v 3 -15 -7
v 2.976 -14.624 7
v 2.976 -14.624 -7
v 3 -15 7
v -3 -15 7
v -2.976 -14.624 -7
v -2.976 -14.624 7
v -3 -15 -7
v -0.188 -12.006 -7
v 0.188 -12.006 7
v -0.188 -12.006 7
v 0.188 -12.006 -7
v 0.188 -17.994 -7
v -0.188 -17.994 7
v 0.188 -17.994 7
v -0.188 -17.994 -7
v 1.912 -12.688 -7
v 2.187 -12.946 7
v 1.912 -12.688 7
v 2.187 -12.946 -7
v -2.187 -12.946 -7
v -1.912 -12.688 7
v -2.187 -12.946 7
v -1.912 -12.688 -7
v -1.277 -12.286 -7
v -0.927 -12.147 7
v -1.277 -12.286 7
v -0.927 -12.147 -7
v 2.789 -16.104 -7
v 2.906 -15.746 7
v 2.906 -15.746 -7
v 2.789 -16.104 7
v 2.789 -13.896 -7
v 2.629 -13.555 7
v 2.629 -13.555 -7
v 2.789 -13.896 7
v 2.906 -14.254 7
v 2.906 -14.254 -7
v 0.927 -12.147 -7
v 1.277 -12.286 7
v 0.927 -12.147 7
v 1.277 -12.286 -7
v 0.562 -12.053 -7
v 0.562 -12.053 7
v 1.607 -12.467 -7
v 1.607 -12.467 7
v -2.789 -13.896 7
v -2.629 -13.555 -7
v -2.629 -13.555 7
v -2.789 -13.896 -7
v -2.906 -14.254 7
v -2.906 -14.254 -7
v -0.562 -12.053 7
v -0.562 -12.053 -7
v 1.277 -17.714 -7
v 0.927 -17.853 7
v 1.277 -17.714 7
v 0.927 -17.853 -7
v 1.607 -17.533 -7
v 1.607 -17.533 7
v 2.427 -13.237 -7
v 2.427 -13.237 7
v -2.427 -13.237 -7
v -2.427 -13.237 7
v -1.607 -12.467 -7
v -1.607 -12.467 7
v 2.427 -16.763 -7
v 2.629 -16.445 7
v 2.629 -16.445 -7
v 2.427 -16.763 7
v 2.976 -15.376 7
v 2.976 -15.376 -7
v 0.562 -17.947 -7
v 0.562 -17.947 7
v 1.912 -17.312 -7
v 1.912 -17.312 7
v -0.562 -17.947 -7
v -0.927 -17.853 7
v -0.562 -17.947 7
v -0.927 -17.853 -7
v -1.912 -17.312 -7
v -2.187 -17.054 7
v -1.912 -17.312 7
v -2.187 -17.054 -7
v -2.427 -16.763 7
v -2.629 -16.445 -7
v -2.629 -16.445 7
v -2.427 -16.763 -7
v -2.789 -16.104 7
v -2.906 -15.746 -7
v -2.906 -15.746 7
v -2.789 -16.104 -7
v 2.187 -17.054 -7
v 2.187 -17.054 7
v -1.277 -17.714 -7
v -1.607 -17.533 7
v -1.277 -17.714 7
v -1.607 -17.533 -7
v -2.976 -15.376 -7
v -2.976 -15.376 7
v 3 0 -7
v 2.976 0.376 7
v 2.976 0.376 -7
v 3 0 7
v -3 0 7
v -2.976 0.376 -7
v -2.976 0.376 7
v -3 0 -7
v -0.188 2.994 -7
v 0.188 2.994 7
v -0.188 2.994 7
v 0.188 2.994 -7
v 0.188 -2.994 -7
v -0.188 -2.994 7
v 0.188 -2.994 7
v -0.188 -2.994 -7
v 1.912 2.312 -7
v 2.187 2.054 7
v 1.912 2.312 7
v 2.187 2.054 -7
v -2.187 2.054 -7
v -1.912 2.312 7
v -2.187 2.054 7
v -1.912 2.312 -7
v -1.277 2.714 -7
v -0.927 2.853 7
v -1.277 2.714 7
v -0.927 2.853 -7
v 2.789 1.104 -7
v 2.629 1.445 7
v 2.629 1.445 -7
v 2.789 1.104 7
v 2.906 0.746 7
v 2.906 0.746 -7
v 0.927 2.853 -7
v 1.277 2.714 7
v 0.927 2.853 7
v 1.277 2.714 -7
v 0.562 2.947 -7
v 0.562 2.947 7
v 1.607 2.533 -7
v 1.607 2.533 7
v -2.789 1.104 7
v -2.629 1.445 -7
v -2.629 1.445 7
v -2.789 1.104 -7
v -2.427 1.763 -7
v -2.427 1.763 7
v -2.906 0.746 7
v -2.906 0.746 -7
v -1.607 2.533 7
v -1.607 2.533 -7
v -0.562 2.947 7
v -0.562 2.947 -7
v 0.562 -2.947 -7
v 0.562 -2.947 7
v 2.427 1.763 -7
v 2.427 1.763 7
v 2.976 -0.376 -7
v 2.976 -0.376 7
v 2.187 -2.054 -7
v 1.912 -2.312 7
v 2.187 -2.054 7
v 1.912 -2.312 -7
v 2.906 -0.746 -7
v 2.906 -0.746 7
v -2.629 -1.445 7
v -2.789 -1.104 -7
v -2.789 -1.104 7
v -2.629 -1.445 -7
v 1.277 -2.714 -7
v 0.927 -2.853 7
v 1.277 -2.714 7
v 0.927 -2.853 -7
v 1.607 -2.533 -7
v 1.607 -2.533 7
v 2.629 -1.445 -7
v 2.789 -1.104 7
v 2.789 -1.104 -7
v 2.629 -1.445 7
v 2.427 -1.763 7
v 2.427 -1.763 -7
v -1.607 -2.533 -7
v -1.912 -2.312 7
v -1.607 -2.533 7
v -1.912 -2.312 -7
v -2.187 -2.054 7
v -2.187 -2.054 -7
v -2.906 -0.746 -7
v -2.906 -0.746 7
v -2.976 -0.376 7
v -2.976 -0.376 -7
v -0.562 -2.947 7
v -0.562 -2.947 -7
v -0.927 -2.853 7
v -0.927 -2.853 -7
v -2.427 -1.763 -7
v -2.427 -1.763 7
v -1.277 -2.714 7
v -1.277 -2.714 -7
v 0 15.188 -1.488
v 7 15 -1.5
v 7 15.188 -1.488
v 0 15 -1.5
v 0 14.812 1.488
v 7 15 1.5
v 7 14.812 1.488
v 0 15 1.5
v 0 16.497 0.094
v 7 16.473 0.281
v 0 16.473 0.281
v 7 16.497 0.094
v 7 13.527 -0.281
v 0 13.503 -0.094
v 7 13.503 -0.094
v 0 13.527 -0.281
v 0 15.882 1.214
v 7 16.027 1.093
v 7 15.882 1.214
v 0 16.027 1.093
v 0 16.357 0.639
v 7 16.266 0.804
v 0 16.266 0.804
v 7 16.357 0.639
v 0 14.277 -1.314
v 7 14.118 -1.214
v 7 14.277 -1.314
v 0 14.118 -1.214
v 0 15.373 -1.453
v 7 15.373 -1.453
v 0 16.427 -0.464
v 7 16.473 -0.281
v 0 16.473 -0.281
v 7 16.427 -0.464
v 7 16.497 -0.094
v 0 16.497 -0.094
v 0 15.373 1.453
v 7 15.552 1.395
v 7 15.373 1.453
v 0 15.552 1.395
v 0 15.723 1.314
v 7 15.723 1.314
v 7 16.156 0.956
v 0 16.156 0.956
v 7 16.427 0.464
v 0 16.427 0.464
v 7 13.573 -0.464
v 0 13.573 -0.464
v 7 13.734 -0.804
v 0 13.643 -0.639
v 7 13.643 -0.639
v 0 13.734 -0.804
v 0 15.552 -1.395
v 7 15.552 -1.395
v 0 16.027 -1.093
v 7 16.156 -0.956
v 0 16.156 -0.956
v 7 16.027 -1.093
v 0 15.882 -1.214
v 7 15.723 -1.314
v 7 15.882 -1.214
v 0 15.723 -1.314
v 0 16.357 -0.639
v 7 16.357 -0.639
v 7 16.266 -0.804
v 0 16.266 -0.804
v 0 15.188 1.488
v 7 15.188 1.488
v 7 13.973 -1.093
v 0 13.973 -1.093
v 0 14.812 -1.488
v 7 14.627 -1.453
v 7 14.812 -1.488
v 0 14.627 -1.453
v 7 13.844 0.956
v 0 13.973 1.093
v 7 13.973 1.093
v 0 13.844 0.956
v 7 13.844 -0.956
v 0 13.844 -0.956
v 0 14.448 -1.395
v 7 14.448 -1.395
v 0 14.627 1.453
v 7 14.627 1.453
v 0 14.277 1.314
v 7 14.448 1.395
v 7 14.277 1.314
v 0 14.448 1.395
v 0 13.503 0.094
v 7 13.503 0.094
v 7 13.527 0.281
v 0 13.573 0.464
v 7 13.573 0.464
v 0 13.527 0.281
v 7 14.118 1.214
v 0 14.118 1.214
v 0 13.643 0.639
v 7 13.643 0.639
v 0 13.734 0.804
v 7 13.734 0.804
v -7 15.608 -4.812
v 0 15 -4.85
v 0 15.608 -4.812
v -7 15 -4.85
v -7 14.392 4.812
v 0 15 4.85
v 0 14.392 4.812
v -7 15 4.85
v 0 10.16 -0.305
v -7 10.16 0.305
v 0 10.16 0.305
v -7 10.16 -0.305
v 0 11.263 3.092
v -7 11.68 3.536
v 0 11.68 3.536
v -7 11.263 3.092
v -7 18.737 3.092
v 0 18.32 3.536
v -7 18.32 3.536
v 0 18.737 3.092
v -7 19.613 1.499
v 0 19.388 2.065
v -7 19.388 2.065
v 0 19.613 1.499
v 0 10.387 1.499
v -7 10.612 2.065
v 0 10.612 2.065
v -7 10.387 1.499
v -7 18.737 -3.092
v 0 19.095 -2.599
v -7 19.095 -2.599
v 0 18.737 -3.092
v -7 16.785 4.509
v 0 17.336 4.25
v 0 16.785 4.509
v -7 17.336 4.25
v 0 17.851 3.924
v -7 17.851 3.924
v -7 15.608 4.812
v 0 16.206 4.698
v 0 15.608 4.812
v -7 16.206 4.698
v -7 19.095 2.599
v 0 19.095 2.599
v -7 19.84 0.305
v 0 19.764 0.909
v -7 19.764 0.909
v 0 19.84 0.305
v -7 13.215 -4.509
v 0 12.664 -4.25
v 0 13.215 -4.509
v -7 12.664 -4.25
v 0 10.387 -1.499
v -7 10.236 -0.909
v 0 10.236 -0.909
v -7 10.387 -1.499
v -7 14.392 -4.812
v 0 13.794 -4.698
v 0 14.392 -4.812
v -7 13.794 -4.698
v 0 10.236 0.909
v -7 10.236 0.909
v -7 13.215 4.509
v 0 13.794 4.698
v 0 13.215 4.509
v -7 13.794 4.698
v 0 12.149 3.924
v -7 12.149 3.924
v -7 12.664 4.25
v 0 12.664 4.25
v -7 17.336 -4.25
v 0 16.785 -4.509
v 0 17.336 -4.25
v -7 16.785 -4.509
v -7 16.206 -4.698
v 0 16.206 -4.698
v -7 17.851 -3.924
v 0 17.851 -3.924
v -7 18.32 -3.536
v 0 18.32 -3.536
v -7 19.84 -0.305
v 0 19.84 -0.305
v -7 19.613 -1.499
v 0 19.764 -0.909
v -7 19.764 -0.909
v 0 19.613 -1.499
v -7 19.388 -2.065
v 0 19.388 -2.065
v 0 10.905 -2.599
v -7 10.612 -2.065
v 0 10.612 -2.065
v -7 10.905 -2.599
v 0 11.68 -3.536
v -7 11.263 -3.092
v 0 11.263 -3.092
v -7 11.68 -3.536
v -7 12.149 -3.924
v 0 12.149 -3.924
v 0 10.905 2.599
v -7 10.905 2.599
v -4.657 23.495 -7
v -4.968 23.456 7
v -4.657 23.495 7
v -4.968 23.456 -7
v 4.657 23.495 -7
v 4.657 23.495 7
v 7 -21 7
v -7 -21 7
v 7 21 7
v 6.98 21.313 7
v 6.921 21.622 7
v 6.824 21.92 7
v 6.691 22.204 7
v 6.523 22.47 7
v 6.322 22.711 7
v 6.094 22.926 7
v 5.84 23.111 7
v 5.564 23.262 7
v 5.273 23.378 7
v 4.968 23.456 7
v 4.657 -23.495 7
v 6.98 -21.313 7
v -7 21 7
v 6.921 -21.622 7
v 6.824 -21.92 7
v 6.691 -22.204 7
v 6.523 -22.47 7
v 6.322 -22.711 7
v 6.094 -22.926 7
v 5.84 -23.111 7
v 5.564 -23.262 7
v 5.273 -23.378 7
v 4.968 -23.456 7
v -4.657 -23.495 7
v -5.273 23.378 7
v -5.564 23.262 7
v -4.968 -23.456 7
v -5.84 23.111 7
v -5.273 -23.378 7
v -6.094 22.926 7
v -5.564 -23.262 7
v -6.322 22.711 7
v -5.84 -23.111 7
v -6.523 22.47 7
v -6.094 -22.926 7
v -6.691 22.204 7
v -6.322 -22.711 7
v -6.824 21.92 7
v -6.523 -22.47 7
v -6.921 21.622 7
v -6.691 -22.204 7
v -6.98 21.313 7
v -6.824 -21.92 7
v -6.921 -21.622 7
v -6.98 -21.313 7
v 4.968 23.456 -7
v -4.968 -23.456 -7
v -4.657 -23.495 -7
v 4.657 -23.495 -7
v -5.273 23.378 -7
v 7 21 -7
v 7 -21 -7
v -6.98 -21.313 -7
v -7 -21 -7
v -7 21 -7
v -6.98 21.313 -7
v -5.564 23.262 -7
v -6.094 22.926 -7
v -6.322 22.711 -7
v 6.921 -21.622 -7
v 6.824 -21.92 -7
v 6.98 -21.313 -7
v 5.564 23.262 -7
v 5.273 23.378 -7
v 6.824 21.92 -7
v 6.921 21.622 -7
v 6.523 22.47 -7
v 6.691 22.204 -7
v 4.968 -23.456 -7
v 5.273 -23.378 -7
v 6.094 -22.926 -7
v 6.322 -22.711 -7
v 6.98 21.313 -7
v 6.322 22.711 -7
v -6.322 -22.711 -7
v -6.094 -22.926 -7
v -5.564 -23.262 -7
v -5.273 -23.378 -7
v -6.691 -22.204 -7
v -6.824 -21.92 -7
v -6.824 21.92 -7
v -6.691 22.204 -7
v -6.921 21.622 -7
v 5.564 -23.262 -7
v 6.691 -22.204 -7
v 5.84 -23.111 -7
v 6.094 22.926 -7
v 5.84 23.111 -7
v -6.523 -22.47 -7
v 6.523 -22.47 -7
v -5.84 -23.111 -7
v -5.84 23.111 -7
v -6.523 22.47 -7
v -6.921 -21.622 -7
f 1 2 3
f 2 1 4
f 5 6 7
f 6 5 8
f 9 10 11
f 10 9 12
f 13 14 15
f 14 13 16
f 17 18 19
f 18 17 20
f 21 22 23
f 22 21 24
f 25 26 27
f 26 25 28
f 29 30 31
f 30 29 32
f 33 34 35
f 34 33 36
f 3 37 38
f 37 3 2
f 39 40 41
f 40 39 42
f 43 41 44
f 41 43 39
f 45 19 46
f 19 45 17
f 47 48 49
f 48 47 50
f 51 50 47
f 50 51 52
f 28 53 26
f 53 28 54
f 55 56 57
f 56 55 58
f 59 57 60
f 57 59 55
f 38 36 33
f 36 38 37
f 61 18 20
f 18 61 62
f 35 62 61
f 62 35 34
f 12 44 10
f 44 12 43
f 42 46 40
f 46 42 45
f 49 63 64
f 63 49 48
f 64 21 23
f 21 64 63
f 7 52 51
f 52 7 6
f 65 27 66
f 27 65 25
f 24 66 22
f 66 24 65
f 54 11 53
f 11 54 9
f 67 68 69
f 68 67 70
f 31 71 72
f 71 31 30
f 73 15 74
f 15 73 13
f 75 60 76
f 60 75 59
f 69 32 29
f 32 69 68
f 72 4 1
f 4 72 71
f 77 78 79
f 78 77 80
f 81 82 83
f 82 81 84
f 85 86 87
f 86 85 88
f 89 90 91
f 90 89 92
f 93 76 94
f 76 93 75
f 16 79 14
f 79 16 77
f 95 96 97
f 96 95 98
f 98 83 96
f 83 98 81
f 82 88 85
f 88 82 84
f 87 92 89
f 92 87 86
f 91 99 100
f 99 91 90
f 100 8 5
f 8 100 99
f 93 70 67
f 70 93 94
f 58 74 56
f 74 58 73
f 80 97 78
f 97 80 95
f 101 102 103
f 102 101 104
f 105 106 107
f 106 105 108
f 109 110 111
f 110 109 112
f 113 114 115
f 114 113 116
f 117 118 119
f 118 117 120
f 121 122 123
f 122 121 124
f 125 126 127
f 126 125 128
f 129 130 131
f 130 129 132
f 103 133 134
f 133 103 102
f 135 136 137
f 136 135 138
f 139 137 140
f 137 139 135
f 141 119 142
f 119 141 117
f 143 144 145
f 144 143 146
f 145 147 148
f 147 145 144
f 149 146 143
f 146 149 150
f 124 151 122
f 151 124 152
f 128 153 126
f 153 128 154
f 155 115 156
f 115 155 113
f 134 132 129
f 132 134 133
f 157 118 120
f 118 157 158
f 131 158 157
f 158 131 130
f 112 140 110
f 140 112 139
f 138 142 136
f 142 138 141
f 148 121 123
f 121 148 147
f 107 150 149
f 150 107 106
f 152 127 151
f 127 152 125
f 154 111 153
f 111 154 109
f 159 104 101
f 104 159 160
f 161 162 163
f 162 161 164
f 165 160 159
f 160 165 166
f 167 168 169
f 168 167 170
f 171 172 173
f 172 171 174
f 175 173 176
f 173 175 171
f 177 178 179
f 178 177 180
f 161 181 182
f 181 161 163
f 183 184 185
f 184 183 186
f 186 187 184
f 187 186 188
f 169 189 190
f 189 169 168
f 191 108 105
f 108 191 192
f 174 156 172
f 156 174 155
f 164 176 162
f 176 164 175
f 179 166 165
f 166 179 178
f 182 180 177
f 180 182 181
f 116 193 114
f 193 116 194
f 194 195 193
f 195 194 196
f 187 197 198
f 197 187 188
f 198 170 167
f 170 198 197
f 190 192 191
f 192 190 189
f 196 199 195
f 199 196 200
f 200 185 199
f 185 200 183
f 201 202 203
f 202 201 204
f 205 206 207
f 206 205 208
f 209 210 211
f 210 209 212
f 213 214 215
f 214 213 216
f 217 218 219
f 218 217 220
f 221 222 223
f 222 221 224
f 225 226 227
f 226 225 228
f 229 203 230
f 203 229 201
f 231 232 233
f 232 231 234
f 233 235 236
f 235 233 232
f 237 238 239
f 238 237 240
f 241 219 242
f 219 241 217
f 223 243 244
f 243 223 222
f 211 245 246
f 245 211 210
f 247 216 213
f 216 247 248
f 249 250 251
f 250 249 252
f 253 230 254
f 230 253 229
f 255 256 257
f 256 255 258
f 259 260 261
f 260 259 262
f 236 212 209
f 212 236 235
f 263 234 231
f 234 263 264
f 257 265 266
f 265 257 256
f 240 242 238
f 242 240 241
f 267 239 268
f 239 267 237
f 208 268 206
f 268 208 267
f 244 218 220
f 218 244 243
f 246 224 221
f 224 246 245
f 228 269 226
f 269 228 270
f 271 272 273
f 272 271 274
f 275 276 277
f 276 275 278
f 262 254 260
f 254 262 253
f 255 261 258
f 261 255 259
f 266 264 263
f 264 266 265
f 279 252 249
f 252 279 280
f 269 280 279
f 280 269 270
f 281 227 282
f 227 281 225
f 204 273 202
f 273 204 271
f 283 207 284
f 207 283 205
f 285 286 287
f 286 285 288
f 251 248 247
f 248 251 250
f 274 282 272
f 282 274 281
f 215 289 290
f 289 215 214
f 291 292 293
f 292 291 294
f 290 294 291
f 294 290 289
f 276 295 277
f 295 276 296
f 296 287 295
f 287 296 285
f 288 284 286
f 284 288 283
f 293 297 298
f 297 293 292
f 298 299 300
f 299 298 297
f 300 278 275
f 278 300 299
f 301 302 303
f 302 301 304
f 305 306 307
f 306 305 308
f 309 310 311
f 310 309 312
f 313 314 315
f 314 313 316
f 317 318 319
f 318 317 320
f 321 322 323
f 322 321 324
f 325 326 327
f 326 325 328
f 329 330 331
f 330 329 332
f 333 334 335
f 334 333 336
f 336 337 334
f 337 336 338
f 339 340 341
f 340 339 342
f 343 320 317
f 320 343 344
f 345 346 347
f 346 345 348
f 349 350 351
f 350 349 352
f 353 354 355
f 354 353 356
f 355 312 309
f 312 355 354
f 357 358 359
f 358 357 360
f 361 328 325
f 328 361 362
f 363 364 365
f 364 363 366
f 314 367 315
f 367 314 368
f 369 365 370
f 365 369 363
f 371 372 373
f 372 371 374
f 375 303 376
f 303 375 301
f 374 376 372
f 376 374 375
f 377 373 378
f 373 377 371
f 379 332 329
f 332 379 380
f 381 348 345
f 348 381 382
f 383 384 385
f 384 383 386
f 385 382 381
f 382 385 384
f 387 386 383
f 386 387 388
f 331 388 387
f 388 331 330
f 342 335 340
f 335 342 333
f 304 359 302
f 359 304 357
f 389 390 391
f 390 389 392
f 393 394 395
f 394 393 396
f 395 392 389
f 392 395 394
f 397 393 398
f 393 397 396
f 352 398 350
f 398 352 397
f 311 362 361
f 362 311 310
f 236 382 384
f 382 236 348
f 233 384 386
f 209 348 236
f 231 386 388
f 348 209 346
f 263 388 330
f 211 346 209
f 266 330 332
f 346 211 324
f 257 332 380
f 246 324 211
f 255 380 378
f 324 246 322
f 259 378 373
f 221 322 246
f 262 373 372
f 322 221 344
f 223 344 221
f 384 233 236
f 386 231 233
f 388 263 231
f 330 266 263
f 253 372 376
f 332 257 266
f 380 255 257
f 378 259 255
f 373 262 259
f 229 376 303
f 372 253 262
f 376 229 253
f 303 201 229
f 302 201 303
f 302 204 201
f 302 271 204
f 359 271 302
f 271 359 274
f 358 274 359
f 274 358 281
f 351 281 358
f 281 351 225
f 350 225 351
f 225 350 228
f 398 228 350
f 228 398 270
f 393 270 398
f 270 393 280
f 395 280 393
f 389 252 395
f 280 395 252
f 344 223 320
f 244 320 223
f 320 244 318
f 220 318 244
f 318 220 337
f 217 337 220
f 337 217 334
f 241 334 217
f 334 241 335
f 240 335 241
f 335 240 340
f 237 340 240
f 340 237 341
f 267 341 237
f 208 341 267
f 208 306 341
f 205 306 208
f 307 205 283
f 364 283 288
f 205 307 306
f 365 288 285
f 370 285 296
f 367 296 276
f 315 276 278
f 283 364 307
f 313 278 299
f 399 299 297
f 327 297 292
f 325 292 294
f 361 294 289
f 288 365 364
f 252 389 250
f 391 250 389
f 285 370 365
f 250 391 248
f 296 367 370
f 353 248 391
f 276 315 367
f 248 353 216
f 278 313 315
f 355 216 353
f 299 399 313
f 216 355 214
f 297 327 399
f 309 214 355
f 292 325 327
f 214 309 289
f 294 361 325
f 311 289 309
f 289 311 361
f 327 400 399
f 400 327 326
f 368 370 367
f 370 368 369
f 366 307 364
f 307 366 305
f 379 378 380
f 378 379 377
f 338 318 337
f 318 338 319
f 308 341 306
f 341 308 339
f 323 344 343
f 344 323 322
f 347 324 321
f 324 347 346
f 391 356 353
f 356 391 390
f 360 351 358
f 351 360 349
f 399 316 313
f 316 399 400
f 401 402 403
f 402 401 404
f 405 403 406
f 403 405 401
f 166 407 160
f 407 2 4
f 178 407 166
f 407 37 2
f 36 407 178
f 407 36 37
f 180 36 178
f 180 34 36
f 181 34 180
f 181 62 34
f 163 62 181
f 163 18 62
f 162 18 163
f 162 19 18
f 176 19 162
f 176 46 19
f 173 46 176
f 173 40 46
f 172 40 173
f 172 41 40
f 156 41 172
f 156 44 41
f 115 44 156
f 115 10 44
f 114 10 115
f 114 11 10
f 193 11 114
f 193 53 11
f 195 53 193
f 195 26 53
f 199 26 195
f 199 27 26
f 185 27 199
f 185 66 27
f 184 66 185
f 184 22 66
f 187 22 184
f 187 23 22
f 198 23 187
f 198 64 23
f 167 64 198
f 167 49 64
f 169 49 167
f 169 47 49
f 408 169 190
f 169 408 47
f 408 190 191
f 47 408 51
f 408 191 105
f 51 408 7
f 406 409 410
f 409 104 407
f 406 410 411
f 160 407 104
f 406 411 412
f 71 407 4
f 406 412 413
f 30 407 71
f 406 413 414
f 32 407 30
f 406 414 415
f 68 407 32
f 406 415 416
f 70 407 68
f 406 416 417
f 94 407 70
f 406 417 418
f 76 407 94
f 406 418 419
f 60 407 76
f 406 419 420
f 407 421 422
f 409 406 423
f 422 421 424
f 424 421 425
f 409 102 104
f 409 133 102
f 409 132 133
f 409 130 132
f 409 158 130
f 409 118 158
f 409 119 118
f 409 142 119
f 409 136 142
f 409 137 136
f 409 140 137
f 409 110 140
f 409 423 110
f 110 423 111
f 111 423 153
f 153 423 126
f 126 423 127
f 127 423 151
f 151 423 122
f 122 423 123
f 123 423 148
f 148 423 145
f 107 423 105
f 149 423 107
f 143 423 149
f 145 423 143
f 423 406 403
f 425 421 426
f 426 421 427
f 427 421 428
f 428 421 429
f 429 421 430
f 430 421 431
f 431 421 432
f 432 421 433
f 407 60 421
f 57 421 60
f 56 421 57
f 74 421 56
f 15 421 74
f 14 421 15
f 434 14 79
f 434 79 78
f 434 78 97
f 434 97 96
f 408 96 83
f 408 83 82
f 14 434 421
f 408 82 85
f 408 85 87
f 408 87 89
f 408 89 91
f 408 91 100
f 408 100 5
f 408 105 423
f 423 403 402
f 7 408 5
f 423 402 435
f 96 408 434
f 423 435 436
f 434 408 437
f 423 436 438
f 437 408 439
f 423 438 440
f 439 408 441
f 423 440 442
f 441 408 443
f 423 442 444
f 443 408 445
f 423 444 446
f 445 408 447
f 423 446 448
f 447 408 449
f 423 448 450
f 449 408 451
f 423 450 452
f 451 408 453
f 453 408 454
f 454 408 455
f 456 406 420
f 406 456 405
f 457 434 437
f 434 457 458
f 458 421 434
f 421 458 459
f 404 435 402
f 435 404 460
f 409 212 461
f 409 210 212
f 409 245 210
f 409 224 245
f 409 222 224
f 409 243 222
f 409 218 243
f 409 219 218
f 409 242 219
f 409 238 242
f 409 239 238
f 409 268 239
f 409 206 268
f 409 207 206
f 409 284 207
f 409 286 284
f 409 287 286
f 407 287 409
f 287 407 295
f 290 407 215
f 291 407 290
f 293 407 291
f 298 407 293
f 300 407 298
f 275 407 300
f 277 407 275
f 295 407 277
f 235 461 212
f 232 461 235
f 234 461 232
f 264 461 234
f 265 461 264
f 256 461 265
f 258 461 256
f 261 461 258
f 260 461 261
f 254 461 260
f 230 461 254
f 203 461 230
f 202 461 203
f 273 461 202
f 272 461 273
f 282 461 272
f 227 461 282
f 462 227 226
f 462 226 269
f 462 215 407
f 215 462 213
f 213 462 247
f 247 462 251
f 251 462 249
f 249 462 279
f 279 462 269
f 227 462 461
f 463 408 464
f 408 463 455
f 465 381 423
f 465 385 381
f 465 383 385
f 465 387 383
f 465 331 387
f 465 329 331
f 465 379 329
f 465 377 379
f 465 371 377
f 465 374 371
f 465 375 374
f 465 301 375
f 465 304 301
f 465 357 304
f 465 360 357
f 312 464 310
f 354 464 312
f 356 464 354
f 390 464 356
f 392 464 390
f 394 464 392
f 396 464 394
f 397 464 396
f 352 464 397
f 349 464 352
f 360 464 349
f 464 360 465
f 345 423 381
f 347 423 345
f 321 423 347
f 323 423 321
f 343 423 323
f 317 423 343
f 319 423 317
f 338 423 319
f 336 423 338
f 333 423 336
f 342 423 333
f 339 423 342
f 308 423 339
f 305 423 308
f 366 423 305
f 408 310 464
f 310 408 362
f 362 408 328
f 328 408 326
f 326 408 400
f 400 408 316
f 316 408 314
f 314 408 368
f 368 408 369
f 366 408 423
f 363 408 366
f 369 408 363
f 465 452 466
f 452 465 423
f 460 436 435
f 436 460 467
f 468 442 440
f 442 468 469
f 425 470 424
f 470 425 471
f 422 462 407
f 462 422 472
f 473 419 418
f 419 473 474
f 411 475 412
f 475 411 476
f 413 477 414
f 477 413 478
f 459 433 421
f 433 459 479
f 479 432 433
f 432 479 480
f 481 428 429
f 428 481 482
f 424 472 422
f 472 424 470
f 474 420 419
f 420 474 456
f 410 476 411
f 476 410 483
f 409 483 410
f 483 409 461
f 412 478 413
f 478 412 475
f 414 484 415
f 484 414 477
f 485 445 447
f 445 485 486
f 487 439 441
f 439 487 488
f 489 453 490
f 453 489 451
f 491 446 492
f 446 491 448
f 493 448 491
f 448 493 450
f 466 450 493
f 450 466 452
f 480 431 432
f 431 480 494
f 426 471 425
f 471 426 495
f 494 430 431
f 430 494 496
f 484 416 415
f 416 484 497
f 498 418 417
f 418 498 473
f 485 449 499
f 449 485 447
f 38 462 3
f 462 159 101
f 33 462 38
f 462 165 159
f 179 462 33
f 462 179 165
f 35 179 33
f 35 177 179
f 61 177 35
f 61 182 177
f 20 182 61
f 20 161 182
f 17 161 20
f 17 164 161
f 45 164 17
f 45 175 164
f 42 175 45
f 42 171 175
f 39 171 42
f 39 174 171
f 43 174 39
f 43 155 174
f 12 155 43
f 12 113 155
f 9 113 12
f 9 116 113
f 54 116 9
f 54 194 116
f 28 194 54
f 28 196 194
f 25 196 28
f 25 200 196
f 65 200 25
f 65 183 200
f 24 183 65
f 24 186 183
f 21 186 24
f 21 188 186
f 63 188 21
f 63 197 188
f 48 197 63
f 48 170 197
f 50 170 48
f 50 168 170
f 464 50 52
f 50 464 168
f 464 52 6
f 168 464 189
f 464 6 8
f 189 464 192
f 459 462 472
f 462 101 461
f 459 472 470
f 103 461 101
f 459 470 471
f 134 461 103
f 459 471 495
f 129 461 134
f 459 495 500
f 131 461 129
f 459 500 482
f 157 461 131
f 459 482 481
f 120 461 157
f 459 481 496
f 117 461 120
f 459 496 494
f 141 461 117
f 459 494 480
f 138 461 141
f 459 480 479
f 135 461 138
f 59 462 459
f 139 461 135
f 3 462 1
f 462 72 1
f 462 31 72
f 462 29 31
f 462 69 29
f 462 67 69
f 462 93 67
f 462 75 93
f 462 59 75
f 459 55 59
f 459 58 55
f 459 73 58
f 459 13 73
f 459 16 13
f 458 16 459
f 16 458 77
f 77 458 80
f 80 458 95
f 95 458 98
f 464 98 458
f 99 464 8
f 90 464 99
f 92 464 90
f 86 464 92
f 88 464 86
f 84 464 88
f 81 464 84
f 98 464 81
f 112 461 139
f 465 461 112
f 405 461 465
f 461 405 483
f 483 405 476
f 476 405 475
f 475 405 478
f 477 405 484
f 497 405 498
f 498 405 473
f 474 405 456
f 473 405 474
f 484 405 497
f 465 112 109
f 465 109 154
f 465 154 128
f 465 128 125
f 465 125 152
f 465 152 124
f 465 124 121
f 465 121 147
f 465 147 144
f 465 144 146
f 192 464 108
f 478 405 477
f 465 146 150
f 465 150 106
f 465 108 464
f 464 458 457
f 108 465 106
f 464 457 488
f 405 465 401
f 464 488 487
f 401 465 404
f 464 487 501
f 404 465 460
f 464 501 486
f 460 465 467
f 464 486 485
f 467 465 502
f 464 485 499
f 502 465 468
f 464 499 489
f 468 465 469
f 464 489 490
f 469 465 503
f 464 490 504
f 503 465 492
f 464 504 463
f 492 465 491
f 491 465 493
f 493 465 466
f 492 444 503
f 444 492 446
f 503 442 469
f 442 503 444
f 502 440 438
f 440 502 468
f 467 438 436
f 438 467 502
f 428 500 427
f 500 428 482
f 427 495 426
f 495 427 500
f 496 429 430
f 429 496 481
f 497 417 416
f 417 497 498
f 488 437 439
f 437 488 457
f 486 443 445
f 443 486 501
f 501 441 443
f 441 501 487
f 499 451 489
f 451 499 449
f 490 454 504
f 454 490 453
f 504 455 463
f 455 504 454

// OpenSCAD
$fn = 50;


difference() {
	union() {
		translate(v = [0, 0, -7.0000000000]) {
			hull() {
				translate(v = [-4.5000000000, 21.0000000000, 0]) {
					cylinder(h = 14, r = 2.5000000000);
				}
				translate(v = [4.5000000000, 21.0000000000, 0]) {
					cylinder(h = 14, r = 2.5000000000);
				}
				translate(v = [-4.5000000000, -21.0000000000, 0]) {
					cylinder(h = 14, r = 2.5000000000);
				}
				translate(v = [4.5000000000, -21.0000000000, 0]) {
					cylinder(h = 14, r = 2.5000000000);
				}
			}
		}
	}
	union() {
		translate(v = [0.0000000000, -15.0000000000, -100.0000000000]) {
			cylinder(h = 200, r = 3.0000000000);
		}
		translate(v = [0.0000000000, 0.0000000000, -100.0000000000]) {
			cylinder(h = 200, r = 3.0000000000);
		}
		translate(v = [-50, 15, 0]) {
			rotate(a = [0, 90, 0]) {
				cylinder(h = 100, r = 1.5000000000);
			}
		}
		translate(v = [-100, 15, 0]) {
			rotate(a = [0, 90, 0]) {
				cylinder(h = 100, r = 4.8500000000);
			}
		}
	}
}
